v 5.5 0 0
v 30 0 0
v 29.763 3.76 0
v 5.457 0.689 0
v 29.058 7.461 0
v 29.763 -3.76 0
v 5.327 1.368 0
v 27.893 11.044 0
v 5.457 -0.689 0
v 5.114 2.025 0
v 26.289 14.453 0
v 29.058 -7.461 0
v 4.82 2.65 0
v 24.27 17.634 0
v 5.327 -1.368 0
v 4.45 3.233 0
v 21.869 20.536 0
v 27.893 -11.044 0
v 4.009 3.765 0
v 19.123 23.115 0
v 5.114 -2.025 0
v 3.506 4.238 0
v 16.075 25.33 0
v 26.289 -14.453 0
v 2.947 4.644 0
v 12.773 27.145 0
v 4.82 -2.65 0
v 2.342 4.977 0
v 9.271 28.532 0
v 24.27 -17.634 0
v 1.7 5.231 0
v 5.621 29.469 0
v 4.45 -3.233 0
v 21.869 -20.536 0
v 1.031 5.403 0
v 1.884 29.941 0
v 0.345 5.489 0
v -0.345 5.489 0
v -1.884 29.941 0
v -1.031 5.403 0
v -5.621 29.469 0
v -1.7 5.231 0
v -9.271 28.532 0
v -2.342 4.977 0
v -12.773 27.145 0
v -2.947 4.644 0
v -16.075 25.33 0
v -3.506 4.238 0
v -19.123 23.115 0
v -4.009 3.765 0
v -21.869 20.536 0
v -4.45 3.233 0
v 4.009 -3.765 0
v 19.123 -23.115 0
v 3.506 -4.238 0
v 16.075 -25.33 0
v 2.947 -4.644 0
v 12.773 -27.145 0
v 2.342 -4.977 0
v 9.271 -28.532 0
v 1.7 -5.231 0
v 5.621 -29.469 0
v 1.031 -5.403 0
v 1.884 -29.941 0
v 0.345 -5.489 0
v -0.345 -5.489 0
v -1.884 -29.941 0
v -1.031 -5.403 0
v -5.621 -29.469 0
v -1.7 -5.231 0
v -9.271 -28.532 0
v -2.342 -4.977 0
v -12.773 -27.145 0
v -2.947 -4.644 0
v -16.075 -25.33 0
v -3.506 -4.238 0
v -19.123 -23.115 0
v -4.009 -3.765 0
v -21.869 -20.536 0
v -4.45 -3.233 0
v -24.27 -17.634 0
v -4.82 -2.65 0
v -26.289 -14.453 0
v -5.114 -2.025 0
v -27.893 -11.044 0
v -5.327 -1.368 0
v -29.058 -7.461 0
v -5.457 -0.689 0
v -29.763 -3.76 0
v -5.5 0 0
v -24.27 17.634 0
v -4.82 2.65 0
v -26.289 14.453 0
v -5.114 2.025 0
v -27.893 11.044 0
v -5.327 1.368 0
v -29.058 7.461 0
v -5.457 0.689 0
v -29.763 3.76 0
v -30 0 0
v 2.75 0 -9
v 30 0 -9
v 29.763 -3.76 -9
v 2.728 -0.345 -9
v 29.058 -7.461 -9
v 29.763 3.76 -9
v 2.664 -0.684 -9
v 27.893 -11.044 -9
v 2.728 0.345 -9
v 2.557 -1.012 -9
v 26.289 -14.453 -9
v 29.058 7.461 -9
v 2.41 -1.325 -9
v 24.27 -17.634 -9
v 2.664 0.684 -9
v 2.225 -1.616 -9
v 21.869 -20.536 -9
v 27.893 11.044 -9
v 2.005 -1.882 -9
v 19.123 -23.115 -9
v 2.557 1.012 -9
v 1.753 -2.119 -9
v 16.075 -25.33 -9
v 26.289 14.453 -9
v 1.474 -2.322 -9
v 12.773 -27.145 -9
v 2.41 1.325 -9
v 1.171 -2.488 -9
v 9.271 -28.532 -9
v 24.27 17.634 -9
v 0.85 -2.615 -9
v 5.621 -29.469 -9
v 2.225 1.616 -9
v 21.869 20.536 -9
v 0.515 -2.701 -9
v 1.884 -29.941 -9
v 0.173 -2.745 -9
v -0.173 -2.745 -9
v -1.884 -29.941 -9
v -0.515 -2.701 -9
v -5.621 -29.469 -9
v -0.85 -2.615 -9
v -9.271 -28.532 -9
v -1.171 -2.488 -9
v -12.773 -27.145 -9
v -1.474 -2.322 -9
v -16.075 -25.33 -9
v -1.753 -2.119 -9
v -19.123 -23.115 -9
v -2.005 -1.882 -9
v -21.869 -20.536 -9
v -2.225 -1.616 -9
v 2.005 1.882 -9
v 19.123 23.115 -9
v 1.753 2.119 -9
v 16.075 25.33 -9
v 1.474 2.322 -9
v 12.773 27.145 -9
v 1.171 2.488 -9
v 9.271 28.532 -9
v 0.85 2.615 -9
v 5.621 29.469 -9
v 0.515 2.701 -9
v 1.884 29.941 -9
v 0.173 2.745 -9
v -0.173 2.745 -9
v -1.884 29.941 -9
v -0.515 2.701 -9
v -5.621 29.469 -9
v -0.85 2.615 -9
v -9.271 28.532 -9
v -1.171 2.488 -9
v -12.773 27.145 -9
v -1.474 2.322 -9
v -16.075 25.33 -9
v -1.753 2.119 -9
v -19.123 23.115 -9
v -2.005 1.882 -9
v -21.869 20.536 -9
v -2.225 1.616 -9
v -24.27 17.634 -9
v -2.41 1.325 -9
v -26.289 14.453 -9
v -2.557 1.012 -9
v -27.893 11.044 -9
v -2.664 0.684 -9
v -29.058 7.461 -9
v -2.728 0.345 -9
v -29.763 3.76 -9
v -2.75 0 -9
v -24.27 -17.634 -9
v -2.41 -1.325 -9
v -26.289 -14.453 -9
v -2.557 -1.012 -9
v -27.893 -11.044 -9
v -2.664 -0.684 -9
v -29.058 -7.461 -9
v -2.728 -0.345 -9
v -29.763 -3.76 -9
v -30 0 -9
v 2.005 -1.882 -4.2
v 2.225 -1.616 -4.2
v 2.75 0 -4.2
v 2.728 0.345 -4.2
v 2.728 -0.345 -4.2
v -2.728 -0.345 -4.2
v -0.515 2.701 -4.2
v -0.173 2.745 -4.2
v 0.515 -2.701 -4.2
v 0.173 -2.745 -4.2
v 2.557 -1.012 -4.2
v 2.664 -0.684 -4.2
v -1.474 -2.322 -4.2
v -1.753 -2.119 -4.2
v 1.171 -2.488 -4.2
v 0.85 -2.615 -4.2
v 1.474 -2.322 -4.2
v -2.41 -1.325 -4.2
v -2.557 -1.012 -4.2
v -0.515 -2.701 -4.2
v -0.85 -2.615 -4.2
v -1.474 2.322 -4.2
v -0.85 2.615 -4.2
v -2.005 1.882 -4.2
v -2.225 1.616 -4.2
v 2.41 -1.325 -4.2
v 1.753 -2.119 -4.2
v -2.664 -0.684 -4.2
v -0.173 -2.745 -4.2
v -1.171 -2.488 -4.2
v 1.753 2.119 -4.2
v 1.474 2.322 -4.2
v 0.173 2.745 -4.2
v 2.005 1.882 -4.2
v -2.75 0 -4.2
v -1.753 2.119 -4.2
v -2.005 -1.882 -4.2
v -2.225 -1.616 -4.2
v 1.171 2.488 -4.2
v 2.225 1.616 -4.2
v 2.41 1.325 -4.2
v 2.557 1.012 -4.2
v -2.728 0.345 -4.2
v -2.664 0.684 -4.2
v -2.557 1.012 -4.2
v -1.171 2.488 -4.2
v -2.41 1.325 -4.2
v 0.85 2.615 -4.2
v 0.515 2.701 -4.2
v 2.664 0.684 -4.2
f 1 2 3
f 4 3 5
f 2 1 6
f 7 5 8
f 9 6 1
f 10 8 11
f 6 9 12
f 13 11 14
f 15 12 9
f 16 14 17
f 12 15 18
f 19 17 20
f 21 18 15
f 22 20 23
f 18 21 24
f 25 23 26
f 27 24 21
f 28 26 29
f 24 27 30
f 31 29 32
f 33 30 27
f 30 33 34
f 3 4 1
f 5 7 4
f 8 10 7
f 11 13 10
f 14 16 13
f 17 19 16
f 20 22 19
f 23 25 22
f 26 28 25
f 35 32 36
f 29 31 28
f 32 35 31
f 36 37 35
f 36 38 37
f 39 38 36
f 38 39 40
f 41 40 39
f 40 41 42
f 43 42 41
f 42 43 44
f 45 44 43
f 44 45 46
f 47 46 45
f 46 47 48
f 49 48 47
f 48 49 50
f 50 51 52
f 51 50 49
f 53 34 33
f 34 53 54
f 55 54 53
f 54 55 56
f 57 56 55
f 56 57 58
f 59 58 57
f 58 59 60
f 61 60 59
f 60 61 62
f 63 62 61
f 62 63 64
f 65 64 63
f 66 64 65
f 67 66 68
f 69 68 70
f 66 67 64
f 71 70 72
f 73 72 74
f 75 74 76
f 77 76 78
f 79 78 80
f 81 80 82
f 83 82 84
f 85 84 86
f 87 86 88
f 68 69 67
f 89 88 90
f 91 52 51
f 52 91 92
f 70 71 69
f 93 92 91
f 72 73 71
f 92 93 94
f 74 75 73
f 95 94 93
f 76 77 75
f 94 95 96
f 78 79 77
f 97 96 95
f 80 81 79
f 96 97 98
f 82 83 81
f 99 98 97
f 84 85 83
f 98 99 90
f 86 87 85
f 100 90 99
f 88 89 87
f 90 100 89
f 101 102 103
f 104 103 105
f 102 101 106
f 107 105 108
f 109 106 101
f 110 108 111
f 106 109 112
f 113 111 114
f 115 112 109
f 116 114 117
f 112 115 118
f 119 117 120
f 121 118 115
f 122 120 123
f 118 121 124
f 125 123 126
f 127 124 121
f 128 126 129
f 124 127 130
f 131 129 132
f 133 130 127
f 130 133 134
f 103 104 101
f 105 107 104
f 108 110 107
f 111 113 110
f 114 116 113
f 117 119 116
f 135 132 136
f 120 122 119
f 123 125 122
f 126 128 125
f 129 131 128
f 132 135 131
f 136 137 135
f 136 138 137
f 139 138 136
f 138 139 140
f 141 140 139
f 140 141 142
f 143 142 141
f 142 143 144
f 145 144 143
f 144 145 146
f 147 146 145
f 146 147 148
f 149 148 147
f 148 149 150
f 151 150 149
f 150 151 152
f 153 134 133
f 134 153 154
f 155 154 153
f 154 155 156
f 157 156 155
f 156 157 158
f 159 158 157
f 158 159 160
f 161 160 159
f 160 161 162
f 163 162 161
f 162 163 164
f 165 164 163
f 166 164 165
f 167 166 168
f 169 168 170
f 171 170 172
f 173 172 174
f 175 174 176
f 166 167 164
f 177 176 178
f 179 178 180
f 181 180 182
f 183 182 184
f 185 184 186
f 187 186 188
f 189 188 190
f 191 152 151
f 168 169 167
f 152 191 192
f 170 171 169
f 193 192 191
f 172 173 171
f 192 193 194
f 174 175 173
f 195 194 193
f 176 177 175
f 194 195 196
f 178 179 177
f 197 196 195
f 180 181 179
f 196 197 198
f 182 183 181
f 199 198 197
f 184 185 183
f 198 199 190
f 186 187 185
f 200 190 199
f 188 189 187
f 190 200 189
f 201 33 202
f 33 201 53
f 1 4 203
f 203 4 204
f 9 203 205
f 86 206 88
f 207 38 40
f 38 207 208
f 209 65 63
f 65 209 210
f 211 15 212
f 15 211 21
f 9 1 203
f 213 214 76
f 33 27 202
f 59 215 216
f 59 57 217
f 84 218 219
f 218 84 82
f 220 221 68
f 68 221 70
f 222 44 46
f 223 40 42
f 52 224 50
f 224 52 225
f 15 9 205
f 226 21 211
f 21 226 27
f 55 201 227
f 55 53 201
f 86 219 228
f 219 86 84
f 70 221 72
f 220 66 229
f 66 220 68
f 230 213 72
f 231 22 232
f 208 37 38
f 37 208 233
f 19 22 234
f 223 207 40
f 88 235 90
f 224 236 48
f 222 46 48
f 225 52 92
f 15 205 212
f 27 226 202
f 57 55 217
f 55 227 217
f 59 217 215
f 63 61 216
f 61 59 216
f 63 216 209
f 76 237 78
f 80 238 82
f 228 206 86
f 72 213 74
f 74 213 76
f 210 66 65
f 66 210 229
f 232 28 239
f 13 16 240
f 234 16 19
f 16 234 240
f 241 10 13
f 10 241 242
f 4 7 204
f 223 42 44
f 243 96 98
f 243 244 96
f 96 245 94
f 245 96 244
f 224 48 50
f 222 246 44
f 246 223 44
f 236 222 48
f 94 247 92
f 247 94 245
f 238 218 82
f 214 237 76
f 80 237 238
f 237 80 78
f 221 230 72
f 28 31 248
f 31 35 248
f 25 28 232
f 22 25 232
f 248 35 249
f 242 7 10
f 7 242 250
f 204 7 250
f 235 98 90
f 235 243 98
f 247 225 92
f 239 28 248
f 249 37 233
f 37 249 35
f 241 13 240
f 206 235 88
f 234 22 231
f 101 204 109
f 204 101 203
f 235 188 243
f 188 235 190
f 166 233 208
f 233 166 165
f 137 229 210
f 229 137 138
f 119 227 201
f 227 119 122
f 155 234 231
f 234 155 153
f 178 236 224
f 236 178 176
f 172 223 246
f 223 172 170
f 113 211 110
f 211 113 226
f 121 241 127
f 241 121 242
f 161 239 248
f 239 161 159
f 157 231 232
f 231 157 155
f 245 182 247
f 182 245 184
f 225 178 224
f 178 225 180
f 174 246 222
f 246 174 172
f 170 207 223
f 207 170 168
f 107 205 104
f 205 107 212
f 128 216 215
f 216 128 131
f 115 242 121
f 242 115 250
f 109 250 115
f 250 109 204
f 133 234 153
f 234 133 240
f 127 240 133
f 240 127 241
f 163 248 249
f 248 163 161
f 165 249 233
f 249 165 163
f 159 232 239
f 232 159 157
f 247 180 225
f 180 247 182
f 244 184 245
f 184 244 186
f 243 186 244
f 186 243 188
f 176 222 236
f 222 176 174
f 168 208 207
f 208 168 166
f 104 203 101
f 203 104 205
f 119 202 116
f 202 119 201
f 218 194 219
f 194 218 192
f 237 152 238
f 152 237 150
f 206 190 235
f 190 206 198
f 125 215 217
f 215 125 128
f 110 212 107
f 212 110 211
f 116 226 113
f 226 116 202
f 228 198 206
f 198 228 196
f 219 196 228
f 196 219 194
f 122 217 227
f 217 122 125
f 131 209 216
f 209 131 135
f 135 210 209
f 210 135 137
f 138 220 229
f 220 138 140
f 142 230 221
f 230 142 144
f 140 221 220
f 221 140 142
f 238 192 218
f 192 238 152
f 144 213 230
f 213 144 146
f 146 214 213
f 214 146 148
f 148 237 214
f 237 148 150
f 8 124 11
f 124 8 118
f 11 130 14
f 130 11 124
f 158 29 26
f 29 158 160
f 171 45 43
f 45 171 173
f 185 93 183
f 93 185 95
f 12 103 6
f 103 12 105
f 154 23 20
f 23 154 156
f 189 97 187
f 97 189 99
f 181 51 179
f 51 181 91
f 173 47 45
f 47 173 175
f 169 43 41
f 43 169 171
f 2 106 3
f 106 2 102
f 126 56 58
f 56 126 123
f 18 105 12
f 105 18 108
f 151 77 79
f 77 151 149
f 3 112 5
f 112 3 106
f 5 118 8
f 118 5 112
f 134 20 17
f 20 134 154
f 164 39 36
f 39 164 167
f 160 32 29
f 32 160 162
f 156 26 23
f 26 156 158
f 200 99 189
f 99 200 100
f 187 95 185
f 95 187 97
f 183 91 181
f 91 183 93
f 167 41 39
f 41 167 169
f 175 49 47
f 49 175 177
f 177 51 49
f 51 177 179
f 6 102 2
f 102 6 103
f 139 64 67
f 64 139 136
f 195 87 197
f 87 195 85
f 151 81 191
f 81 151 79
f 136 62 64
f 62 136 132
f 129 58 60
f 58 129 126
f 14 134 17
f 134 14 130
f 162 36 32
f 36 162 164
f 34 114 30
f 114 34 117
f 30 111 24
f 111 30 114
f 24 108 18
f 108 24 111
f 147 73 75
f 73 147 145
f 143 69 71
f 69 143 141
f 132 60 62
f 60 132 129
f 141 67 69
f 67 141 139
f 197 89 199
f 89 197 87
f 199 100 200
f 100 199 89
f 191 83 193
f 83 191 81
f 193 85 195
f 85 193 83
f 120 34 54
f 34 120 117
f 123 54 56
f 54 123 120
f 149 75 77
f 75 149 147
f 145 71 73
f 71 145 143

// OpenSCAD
$fn = 50;


difference() {
	union() {
		translate(v = [0, 0, -9.0000000000]) {
			cylinder(h = 9, r = 30.0000000000);
		}
	}
	union() {
		translate(v = [0, 0, 0]) {
			rotate(a = [0, 0, 0]) {
				difference() {
					union() {
						#translate(v = [0, 0, -9.0000000000]) {
							cylinder(h = 9, r = 2.2500000000);
						}
						#translate(v = [0, 0, -4.2000000000]) {
							cylinder(h = 4.2000000000, r1 = 2.7500000000, r2 = 5.5000000000);
						}
						#translate(v = [0, 0, -9.0000000000]) {
							cylinder(h = 9, r = 2.7500000000);
						}
						#translate(v = [0, 0, -9.0000000000]) {
							cylinder(h = 9, r = 2.2500000000);
						}
					}
					union();
				}
			}
		}
	}
}
